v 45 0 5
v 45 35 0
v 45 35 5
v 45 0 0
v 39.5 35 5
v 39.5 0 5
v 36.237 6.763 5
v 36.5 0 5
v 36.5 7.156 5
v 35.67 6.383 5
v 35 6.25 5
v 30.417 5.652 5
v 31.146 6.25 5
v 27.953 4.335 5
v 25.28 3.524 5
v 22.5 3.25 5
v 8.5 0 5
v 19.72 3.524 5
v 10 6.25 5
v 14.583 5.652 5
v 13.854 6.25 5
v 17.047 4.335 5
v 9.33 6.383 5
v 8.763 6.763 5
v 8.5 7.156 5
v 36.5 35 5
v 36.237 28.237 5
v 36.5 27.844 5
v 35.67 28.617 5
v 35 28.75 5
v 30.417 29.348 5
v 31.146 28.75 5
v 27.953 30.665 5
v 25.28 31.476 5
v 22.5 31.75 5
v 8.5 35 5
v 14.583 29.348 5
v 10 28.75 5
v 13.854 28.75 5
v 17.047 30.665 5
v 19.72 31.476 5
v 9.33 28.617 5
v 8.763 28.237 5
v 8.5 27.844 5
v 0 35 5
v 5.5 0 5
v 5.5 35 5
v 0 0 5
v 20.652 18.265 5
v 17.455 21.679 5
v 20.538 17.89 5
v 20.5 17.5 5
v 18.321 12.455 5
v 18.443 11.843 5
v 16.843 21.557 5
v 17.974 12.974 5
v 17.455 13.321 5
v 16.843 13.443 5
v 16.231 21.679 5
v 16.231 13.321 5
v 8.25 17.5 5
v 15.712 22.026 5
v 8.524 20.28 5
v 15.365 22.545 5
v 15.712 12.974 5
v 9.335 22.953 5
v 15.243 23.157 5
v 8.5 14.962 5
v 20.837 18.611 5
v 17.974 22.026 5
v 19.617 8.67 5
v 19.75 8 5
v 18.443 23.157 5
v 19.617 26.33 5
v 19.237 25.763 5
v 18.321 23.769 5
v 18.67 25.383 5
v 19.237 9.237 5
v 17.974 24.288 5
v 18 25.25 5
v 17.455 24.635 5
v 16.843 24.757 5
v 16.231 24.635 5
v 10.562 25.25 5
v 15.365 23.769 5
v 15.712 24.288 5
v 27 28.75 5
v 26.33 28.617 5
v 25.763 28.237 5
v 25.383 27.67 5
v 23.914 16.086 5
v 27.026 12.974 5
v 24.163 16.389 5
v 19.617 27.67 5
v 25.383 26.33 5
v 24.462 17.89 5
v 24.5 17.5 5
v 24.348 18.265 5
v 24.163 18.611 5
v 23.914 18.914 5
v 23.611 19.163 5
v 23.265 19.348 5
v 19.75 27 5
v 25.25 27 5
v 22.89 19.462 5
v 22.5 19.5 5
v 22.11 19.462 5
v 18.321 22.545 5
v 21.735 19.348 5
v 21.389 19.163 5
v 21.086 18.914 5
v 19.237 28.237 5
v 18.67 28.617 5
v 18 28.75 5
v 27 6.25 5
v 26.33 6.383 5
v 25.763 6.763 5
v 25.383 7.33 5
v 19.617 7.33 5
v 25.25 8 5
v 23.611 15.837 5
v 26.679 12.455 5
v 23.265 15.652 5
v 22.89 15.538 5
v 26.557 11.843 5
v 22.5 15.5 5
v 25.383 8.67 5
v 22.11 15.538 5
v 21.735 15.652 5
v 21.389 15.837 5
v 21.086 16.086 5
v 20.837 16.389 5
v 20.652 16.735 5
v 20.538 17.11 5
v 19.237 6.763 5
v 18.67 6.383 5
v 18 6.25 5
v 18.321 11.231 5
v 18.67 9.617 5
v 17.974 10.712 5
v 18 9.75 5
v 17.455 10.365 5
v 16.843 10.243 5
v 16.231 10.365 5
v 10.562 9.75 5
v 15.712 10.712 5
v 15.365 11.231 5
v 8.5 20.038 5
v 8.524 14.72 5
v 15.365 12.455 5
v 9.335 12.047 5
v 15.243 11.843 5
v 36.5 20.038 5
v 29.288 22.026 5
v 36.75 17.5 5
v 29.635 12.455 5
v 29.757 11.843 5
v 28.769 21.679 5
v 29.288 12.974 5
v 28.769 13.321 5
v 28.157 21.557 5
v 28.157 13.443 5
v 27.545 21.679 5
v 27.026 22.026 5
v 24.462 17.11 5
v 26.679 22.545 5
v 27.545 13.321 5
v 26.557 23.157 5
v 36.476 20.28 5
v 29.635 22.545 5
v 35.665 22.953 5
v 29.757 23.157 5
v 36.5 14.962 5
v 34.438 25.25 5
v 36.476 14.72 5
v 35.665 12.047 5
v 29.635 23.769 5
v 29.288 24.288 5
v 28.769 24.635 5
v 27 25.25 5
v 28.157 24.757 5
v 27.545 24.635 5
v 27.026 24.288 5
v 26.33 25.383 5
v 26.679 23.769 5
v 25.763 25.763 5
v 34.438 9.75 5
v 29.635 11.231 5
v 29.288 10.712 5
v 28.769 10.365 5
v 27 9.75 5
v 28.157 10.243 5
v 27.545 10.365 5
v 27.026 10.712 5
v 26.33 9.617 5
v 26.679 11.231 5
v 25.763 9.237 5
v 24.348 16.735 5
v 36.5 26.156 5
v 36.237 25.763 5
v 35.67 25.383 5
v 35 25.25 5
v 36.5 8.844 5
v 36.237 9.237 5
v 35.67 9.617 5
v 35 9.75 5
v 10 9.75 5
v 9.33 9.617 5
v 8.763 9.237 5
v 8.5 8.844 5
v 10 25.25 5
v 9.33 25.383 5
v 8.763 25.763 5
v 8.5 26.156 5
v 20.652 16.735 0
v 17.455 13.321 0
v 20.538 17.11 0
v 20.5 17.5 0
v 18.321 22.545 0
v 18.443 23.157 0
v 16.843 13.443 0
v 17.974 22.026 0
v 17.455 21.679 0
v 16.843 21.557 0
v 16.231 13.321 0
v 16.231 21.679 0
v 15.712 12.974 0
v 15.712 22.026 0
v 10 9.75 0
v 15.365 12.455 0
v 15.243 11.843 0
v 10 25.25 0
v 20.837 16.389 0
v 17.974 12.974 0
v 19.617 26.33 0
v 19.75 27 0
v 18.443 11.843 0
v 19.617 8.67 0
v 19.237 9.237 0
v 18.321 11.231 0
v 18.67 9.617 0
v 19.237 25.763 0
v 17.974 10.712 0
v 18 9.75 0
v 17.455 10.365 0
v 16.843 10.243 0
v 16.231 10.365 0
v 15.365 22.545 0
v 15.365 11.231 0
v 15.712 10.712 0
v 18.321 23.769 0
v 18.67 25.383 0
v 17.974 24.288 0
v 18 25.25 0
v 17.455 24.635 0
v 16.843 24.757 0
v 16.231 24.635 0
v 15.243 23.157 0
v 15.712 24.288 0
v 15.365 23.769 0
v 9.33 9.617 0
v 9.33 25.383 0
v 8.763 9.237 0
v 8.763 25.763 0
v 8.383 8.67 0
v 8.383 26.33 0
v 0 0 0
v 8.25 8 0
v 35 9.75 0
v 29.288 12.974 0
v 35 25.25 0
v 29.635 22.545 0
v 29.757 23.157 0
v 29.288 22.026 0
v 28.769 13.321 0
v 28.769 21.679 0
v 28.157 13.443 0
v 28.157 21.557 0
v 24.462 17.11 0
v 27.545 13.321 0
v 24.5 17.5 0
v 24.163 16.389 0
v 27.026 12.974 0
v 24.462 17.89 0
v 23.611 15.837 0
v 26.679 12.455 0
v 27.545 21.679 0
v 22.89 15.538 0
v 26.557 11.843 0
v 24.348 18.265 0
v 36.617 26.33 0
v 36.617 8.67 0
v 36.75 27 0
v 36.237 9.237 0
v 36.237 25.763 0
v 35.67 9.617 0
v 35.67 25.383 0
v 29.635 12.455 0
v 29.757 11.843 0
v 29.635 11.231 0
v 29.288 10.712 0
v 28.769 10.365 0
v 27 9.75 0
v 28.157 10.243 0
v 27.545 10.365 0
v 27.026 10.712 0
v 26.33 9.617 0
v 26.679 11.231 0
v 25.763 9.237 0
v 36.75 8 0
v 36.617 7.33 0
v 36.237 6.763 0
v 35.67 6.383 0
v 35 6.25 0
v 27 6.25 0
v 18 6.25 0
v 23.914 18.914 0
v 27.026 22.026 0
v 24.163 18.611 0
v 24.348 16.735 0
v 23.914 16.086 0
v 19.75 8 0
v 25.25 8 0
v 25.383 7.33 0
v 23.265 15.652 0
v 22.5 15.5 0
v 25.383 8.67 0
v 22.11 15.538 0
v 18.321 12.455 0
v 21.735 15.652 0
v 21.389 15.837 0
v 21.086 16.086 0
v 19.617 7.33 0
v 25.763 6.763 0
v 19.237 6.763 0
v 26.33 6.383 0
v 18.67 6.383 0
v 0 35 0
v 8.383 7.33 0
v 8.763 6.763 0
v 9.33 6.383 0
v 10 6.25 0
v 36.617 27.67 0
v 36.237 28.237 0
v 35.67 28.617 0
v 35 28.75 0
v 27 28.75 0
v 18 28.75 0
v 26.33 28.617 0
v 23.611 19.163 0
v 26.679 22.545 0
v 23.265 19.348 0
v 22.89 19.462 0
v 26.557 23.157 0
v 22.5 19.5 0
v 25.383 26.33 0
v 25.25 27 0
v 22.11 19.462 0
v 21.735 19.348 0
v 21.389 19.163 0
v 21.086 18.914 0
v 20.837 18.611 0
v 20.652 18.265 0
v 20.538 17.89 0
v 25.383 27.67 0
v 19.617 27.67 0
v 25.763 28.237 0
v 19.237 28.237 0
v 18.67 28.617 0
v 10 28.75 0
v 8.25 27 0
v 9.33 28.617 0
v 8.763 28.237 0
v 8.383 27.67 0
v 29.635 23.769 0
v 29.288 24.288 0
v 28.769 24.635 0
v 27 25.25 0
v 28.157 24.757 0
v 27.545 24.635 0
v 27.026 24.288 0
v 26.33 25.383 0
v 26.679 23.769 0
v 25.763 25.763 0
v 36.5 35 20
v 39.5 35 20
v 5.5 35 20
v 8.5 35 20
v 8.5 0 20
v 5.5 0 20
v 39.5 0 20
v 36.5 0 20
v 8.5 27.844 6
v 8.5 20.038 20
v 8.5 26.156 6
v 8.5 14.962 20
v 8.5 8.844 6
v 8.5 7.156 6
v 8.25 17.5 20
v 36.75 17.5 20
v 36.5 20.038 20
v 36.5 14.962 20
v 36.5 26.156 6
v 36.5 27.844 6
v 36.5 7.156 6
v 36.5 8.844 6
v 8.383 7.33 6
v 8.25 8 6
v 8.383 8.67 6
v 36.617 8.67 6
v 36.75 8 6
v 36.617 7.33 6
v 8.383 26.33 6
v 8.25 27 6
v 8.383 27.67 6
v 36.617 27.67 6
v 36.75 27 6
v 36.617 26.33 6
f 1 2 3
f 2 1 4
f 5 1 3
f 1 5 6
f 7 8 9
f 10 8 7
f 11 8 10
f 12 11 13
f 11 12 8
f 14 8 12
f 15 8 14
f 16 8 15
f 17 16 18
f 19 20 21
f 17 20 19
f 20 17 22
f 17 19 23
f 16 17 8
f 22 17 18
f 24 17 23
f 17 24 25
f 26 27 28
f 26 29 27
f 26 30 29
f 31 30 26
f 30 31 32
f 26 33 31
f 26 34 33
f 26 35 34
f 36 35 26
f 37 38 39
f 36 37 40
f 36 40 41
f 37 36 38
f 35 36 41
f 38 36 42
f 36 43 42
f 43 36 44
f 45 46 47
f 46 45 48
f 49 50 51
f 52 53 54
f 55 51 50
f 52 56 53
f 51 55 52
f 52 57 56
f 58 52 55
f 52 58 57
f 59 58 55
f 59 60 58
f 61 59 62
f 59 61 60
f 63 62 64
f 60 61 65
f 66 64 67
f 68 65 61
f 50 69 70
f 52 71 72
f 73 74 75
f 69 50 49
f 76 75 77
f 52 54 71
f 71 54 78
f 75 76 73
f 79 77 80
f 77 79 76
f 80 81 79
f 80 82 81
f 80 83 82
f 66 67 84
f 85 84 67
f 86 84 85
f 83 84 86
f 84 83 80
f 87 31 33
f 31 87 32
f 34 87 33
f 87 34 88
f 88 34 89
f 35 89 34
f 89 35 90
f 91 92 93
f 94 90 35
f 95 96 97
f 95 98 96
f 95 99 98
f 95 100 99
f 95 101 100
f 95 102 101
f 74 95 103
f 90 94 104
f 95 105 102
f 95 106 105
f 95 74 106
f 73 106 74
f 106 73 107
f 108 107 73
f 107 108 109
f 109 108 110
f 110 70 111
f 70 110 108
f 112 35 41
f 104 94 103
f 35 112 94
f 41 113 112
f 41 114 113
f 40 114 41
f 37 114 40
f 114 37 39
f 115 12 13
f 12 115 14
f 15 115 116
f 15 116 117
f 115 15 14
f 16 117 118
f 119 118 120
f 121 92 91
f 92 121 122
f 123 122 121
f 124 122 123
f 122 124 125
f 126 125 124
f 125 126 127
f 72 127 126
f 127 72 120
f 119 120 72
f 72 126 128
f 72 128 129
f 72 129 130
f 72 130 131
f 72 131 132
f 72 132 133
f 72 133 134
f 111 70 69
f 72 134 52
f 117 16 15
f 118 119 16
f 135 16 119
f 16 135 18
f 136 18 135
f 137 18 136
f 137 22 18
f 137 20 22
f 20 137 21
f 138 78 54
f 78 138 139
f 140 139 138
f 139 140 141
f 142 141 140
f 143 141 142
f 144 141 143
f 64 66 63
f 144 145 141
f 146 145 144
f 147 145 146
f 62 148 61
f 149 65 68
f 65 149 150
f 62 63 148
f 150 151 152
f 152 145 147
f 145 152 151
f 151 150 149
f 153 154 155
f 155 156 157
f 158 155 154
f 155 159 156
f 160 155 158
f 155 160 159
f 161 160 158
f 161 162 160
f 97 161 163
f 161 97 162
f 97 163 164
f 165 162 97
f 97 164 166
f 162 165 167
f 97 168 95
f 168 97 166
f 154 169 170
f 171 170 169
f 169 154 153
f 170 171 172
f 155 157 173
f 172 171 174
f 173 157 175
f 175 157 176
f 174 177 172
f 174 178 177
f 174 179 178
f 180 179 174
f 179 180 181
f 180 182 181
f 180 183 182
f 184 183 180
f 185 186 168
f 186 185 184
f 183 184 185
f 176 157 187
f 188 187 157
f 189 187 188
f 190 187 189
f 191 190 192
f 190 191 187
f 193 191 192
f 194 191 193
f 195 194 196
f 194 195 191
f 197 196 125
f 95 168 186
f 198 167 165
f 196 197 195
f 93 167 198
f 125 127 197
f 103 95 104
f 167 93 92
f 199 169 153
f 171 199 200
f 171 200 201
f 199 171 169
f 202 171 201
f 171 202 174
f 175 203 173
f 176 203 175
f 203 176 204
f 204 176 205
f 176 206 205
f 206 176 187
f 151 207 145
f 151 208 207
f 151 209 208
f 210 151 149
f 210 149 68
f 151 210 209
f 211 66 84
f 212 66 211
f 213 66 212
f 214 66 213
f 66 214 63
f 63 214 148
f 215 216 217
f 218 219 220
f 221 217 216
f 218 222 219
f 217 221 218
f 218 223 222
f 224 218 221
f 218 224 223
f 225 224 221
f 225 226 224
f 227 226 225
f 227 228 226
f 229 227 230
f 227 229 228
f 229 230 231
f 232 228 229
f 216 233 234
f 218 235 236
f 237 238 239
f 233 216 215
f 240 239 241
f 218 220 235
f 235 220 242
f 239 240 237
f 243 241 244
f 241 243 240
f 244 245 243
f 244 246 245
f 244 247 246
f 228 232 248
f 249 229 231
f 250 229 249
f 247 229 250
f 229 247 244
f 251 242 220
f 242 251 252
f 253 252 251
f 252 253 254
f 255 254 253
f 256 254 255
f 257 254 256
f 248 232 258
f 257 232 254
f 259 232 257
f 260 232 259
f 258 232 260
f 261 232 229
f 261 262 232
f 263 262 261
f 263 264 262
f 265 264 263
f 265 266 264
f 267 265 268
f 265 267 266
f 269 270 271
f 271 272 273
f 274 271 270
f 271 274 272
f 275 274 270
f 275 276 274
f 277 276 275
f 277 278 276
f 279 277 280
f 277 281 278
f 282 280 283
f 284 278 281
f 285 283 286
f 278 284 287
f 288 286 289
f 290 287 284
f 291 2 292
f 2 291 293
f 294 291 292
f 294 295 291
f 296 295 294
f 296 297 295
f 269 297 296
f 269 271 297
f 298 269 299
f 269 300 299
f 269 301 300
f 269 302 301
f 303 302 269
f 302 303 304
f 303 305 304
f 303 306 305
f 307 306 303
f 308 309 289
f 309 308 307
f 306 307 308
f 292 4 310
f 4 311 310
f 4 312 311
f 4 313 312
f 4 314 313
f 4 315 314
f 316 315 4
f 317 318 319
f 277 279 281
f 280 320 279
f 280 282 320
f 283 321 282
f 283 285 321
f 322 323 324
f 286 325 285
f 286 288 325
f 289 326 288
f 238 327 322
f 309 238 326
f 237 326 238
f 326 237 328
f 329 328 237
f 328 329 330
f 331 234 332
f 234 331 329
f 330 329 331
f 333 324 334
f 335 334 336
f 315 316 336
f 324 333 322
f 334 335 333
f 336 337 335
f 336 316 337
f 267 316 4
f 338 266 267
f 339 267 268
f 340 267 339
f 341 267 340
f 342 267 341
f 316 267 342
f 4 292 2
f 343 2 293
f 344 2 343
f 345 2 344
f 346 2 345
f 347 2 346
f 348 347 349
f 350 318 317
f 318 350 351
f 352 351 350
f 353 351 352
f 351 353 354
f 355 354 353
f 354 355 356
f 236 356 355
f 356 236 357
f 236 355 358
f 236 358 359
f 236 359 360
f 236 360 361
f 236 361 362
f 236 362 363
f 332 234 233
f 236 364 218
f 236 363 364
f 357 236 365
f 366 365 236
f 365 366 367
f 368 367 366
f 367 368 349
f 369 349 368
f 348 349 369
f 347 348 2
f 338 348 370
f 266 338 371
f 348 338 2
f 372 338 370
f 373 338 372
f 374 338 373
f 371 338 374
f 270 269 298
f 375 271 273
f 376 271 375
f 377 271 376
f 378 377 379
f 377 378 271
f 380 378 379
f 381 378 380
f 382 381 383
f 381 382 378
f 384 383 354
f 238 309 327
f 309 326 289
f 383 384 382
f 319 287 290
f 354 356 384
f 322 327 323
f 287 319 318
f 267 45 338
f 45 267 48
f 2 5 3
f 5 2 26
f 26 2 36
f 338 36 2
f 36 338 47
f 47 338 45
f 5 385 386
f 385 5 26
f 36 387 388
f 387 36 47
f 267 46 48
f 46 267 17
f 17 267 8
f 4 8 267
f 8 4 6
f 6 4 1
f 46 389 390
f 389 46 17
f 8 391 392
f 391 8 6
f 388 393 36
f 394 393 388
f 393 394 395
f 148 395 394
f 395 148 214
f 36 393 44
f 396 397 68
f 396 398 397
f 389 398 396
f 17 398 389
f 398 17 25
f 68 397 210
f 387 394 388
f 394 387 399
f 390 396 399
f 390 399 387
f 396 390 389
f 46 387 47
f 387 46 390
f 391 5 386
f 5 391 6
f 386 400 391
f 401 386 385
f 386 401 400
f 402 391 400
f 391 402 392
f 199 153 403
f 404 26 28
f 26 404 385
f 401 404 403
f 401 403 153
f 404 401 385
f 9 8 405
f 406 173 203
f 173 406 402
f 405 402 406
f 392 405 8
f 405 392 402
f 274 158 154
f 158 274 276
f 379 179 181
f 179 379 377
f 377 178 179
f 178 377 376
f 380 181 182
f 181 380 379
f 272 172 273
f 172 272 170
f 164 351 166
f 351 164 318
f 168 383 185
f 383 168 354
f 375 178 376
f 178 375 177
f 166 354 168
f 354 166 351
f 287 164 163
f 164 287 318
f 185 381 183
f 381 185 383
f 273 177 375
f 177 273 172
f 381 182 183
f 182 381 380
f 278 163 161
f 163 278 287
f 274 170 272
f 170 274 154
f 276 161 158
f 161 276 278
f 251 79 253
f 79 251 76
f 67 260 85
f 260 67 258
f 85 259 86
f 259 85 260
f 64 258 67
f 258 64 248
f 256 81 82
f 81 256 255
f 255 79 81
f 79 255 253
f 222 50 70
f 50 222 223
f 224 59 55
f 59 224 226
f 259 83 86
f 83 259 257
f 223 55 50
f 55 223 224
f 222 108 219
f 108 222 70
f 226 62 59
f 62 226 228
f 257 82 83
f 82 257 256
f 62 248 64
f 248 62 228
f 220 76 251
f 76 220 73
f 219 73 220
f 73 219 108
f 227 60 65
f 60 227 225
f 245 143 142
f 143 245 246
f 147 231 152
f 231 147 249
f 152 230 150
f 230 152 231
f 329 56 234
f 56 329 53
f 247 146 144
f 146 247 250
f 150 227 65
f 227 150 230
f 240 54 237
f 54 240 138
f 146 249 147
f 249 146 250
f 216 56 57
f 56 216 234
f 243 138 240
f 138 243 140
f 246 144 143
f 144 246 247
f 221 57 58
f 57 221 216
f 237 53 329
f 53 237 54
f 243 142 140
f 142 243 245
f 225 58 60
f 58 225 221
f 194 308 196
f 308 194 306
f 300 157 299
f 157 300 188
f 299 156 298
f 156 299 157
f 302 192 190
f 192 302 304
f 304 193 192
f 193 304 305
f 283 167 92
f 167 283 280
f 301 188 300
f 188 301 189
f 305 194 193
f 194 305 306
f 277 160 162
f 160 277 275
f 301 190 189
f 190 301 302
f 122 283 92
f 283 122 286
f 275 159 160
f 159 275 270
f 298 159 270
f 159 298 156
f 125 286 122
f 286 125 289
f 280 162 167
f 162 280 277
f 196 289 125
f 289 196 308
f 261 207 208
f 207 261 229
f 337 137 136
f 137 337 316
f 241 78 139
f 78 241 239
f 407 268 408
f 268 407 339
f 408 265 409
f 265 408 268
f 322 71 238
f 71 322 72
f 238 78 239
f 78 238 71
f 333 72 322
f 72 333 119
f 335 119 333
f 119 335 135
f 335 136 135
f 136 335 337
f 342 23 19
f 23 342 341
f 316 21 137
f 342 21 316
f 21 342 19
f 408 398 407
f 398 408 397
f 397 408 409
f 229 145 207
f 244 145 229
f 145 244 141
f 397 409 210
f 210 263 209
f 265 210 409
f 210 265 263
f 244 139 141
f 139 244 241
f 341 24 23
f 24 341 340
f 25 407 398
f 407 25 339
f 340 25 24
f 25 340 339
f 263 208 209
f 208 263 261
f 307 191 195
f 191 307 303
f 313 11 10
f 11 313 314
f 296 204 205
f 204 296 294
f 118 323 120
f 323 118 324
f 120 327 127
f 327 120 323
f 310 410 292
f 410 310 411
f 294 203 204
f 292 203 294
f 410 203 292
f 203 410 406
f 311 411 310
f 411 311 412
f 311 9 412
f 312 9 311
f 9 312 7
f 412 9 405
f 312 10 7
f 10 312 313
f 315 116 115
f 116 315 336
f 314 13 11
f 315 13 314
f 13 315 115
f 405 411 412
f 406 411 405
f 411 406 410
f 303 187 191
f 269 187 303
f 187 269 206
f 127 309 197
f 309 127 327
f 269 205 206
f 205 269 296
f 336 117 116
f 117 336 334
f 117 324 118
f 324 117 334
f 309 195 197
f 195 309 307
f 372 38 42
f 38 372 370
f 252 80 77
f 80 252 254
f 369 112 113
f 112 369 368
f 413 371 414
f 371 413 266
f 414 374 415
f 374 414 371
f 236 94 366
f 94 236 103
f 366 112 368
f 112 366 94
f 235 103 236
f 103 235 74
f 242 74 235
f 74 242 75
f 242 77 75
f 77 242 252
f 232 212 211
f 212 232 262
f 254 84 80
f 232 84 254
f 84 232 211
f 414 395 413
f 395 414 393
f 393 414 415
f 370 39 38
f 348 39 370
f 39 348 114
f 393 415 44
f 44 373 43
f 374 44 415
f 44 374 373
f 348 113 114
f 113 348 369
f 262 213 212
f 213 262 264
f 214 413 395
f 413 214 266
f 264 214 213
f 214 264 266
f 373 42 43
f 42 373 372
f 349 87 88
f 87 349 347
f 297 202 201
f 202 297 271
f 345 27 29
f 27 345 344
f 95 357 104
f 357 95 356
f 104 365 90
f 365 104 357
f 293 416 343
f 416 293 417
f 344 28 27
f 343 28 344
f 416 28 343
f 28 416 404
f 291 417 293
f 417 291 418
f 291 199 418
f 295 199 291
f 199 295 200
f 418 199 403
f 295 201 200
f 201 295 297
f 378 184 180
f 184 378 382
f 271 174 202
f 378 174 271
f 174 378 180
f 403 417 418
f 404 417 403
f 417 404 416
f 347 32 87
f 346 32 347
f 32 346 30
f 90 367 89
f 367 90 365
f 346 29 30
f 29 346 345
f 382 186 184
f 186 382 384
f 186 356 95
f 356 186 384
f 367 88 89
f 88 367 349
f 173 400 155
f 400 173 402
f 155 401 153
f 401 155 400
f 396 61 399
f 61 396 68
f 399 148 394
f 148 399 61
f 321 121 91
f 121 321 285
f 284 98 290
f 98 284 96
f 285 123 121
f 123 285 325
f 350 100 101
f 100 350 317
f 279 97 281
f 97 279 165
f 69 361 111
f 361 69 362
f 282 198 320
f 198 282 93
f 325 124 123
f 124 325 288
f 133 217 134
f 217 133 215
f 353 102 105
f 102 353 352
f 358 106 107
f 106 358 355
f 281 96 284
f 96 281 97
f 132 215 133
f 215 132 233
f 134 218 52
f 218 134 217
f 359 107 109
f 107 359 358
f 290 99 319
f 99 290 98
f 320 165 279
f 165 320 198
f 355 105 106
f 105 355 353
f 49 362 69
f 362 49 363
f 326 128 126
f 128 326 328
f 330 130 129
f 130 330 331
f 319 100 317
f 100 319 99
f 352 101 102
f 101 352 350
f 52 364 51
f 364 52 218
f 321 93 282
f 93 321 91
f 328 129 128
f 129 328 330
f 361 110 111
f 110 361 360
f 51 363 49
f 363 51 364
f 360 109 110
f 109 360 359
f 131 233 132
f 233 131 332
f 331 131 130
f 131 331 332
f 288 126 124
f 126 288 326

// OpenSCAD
// ============================================
// ESP32 Rover - Motor Mount (Sliding)
// ============================================
// Design Specification v1.0
//
// Sliding motor mount for A2212 BLDC motor.
// Allows gear mesh adjustment.
// ============================================

// A2212 Motor dimensions
motor_diameter = 28;
motor_body_height = 15;
shaft_diameter = 3.17;
shaft_clearance = 4;
mount_hole_spacing = 16;  // M3 pattern

// Mount dimensions
mount_length = 45;
mount_width = 35;
mount_thickness = 5;
mount_wall = 3;

// Slot for adjustment
slot_length = 8;  // 4mm adjustment each direction
slot_width = 3.5;  // M3 clearance

// Resolution
$fn = 32;

module motor_mount() {
    difference() {
        union() {
            // Base plate
            cube([mount_length, mount_width, mount_thickness]);

            // Motor cradle walls
            translate([mount_length / 2 - motor_diameter / 2 - mount_wall, 0, mount_thickness])
                cube([mount_wall, mount_width, motor_body_height]);
            translate([mount_length / 2 + motor_diameter / 2, 0, mount_thickness])
                cube([mount_wall, mount_width, motor_body_height]);
        }

        // Motor body cutout (semicircle)
        translate([mount_length / 2, mount_width / 2, mount_thickness])
            cylinder(d = motor_diameter + 0.5, h = motor_body_height + 1);

        // Shaft clearance
        translate([mount_length / 2, mount_width / 2, -1])
            cylinder(d = shaft_clearance, h = mount_thickness + 2);

        // Motor mounting holes (M3)
        for (angle = [0, 90, 180, 270]) {
            translate([mount_length / 2, mount_width / 2, 0])
                rotate([0, 0, angle + 45])
                    translate([mount_hole_spacing / 2, 0, -1])
                        cylinder(d = 3.2, h = mount_thickness + motor_body_height + 2, $fn = 16);
        }

        // Adjustment slots (for chassis mounting)
        for (y = [8, mount_width - 8]) {
            translate([10, y, -1])
                hull() {
                    cylinder(d = slot_width, h = mount_thickness + 2, $fn = 16);
                    translate([slot_length, 0, 0])
                        cylinder(d = slot_width, h = mount_thickness + 2, $fn = 16);
                }
            translate([mount_length - 10 - slot_length, y, -1])
                hull() {
                    cylinder(d = slot_width, h = mount_thickness + 2, $fn = 16);
                    translate([slot_length, 0, 0])
                        cylinder(d = slot_width, h = mount_thickness + 2, $fn = 16);
                }
        }

        // Ventilation slots
        for (i = [0:2]) {
            translate([mount_length / 2 - 8 + i * 8, -1, mount_thickness + 5])
                cube([3, mount_width + 2, 8]);
        }
    }
}

// Render the part
motor_mount();
